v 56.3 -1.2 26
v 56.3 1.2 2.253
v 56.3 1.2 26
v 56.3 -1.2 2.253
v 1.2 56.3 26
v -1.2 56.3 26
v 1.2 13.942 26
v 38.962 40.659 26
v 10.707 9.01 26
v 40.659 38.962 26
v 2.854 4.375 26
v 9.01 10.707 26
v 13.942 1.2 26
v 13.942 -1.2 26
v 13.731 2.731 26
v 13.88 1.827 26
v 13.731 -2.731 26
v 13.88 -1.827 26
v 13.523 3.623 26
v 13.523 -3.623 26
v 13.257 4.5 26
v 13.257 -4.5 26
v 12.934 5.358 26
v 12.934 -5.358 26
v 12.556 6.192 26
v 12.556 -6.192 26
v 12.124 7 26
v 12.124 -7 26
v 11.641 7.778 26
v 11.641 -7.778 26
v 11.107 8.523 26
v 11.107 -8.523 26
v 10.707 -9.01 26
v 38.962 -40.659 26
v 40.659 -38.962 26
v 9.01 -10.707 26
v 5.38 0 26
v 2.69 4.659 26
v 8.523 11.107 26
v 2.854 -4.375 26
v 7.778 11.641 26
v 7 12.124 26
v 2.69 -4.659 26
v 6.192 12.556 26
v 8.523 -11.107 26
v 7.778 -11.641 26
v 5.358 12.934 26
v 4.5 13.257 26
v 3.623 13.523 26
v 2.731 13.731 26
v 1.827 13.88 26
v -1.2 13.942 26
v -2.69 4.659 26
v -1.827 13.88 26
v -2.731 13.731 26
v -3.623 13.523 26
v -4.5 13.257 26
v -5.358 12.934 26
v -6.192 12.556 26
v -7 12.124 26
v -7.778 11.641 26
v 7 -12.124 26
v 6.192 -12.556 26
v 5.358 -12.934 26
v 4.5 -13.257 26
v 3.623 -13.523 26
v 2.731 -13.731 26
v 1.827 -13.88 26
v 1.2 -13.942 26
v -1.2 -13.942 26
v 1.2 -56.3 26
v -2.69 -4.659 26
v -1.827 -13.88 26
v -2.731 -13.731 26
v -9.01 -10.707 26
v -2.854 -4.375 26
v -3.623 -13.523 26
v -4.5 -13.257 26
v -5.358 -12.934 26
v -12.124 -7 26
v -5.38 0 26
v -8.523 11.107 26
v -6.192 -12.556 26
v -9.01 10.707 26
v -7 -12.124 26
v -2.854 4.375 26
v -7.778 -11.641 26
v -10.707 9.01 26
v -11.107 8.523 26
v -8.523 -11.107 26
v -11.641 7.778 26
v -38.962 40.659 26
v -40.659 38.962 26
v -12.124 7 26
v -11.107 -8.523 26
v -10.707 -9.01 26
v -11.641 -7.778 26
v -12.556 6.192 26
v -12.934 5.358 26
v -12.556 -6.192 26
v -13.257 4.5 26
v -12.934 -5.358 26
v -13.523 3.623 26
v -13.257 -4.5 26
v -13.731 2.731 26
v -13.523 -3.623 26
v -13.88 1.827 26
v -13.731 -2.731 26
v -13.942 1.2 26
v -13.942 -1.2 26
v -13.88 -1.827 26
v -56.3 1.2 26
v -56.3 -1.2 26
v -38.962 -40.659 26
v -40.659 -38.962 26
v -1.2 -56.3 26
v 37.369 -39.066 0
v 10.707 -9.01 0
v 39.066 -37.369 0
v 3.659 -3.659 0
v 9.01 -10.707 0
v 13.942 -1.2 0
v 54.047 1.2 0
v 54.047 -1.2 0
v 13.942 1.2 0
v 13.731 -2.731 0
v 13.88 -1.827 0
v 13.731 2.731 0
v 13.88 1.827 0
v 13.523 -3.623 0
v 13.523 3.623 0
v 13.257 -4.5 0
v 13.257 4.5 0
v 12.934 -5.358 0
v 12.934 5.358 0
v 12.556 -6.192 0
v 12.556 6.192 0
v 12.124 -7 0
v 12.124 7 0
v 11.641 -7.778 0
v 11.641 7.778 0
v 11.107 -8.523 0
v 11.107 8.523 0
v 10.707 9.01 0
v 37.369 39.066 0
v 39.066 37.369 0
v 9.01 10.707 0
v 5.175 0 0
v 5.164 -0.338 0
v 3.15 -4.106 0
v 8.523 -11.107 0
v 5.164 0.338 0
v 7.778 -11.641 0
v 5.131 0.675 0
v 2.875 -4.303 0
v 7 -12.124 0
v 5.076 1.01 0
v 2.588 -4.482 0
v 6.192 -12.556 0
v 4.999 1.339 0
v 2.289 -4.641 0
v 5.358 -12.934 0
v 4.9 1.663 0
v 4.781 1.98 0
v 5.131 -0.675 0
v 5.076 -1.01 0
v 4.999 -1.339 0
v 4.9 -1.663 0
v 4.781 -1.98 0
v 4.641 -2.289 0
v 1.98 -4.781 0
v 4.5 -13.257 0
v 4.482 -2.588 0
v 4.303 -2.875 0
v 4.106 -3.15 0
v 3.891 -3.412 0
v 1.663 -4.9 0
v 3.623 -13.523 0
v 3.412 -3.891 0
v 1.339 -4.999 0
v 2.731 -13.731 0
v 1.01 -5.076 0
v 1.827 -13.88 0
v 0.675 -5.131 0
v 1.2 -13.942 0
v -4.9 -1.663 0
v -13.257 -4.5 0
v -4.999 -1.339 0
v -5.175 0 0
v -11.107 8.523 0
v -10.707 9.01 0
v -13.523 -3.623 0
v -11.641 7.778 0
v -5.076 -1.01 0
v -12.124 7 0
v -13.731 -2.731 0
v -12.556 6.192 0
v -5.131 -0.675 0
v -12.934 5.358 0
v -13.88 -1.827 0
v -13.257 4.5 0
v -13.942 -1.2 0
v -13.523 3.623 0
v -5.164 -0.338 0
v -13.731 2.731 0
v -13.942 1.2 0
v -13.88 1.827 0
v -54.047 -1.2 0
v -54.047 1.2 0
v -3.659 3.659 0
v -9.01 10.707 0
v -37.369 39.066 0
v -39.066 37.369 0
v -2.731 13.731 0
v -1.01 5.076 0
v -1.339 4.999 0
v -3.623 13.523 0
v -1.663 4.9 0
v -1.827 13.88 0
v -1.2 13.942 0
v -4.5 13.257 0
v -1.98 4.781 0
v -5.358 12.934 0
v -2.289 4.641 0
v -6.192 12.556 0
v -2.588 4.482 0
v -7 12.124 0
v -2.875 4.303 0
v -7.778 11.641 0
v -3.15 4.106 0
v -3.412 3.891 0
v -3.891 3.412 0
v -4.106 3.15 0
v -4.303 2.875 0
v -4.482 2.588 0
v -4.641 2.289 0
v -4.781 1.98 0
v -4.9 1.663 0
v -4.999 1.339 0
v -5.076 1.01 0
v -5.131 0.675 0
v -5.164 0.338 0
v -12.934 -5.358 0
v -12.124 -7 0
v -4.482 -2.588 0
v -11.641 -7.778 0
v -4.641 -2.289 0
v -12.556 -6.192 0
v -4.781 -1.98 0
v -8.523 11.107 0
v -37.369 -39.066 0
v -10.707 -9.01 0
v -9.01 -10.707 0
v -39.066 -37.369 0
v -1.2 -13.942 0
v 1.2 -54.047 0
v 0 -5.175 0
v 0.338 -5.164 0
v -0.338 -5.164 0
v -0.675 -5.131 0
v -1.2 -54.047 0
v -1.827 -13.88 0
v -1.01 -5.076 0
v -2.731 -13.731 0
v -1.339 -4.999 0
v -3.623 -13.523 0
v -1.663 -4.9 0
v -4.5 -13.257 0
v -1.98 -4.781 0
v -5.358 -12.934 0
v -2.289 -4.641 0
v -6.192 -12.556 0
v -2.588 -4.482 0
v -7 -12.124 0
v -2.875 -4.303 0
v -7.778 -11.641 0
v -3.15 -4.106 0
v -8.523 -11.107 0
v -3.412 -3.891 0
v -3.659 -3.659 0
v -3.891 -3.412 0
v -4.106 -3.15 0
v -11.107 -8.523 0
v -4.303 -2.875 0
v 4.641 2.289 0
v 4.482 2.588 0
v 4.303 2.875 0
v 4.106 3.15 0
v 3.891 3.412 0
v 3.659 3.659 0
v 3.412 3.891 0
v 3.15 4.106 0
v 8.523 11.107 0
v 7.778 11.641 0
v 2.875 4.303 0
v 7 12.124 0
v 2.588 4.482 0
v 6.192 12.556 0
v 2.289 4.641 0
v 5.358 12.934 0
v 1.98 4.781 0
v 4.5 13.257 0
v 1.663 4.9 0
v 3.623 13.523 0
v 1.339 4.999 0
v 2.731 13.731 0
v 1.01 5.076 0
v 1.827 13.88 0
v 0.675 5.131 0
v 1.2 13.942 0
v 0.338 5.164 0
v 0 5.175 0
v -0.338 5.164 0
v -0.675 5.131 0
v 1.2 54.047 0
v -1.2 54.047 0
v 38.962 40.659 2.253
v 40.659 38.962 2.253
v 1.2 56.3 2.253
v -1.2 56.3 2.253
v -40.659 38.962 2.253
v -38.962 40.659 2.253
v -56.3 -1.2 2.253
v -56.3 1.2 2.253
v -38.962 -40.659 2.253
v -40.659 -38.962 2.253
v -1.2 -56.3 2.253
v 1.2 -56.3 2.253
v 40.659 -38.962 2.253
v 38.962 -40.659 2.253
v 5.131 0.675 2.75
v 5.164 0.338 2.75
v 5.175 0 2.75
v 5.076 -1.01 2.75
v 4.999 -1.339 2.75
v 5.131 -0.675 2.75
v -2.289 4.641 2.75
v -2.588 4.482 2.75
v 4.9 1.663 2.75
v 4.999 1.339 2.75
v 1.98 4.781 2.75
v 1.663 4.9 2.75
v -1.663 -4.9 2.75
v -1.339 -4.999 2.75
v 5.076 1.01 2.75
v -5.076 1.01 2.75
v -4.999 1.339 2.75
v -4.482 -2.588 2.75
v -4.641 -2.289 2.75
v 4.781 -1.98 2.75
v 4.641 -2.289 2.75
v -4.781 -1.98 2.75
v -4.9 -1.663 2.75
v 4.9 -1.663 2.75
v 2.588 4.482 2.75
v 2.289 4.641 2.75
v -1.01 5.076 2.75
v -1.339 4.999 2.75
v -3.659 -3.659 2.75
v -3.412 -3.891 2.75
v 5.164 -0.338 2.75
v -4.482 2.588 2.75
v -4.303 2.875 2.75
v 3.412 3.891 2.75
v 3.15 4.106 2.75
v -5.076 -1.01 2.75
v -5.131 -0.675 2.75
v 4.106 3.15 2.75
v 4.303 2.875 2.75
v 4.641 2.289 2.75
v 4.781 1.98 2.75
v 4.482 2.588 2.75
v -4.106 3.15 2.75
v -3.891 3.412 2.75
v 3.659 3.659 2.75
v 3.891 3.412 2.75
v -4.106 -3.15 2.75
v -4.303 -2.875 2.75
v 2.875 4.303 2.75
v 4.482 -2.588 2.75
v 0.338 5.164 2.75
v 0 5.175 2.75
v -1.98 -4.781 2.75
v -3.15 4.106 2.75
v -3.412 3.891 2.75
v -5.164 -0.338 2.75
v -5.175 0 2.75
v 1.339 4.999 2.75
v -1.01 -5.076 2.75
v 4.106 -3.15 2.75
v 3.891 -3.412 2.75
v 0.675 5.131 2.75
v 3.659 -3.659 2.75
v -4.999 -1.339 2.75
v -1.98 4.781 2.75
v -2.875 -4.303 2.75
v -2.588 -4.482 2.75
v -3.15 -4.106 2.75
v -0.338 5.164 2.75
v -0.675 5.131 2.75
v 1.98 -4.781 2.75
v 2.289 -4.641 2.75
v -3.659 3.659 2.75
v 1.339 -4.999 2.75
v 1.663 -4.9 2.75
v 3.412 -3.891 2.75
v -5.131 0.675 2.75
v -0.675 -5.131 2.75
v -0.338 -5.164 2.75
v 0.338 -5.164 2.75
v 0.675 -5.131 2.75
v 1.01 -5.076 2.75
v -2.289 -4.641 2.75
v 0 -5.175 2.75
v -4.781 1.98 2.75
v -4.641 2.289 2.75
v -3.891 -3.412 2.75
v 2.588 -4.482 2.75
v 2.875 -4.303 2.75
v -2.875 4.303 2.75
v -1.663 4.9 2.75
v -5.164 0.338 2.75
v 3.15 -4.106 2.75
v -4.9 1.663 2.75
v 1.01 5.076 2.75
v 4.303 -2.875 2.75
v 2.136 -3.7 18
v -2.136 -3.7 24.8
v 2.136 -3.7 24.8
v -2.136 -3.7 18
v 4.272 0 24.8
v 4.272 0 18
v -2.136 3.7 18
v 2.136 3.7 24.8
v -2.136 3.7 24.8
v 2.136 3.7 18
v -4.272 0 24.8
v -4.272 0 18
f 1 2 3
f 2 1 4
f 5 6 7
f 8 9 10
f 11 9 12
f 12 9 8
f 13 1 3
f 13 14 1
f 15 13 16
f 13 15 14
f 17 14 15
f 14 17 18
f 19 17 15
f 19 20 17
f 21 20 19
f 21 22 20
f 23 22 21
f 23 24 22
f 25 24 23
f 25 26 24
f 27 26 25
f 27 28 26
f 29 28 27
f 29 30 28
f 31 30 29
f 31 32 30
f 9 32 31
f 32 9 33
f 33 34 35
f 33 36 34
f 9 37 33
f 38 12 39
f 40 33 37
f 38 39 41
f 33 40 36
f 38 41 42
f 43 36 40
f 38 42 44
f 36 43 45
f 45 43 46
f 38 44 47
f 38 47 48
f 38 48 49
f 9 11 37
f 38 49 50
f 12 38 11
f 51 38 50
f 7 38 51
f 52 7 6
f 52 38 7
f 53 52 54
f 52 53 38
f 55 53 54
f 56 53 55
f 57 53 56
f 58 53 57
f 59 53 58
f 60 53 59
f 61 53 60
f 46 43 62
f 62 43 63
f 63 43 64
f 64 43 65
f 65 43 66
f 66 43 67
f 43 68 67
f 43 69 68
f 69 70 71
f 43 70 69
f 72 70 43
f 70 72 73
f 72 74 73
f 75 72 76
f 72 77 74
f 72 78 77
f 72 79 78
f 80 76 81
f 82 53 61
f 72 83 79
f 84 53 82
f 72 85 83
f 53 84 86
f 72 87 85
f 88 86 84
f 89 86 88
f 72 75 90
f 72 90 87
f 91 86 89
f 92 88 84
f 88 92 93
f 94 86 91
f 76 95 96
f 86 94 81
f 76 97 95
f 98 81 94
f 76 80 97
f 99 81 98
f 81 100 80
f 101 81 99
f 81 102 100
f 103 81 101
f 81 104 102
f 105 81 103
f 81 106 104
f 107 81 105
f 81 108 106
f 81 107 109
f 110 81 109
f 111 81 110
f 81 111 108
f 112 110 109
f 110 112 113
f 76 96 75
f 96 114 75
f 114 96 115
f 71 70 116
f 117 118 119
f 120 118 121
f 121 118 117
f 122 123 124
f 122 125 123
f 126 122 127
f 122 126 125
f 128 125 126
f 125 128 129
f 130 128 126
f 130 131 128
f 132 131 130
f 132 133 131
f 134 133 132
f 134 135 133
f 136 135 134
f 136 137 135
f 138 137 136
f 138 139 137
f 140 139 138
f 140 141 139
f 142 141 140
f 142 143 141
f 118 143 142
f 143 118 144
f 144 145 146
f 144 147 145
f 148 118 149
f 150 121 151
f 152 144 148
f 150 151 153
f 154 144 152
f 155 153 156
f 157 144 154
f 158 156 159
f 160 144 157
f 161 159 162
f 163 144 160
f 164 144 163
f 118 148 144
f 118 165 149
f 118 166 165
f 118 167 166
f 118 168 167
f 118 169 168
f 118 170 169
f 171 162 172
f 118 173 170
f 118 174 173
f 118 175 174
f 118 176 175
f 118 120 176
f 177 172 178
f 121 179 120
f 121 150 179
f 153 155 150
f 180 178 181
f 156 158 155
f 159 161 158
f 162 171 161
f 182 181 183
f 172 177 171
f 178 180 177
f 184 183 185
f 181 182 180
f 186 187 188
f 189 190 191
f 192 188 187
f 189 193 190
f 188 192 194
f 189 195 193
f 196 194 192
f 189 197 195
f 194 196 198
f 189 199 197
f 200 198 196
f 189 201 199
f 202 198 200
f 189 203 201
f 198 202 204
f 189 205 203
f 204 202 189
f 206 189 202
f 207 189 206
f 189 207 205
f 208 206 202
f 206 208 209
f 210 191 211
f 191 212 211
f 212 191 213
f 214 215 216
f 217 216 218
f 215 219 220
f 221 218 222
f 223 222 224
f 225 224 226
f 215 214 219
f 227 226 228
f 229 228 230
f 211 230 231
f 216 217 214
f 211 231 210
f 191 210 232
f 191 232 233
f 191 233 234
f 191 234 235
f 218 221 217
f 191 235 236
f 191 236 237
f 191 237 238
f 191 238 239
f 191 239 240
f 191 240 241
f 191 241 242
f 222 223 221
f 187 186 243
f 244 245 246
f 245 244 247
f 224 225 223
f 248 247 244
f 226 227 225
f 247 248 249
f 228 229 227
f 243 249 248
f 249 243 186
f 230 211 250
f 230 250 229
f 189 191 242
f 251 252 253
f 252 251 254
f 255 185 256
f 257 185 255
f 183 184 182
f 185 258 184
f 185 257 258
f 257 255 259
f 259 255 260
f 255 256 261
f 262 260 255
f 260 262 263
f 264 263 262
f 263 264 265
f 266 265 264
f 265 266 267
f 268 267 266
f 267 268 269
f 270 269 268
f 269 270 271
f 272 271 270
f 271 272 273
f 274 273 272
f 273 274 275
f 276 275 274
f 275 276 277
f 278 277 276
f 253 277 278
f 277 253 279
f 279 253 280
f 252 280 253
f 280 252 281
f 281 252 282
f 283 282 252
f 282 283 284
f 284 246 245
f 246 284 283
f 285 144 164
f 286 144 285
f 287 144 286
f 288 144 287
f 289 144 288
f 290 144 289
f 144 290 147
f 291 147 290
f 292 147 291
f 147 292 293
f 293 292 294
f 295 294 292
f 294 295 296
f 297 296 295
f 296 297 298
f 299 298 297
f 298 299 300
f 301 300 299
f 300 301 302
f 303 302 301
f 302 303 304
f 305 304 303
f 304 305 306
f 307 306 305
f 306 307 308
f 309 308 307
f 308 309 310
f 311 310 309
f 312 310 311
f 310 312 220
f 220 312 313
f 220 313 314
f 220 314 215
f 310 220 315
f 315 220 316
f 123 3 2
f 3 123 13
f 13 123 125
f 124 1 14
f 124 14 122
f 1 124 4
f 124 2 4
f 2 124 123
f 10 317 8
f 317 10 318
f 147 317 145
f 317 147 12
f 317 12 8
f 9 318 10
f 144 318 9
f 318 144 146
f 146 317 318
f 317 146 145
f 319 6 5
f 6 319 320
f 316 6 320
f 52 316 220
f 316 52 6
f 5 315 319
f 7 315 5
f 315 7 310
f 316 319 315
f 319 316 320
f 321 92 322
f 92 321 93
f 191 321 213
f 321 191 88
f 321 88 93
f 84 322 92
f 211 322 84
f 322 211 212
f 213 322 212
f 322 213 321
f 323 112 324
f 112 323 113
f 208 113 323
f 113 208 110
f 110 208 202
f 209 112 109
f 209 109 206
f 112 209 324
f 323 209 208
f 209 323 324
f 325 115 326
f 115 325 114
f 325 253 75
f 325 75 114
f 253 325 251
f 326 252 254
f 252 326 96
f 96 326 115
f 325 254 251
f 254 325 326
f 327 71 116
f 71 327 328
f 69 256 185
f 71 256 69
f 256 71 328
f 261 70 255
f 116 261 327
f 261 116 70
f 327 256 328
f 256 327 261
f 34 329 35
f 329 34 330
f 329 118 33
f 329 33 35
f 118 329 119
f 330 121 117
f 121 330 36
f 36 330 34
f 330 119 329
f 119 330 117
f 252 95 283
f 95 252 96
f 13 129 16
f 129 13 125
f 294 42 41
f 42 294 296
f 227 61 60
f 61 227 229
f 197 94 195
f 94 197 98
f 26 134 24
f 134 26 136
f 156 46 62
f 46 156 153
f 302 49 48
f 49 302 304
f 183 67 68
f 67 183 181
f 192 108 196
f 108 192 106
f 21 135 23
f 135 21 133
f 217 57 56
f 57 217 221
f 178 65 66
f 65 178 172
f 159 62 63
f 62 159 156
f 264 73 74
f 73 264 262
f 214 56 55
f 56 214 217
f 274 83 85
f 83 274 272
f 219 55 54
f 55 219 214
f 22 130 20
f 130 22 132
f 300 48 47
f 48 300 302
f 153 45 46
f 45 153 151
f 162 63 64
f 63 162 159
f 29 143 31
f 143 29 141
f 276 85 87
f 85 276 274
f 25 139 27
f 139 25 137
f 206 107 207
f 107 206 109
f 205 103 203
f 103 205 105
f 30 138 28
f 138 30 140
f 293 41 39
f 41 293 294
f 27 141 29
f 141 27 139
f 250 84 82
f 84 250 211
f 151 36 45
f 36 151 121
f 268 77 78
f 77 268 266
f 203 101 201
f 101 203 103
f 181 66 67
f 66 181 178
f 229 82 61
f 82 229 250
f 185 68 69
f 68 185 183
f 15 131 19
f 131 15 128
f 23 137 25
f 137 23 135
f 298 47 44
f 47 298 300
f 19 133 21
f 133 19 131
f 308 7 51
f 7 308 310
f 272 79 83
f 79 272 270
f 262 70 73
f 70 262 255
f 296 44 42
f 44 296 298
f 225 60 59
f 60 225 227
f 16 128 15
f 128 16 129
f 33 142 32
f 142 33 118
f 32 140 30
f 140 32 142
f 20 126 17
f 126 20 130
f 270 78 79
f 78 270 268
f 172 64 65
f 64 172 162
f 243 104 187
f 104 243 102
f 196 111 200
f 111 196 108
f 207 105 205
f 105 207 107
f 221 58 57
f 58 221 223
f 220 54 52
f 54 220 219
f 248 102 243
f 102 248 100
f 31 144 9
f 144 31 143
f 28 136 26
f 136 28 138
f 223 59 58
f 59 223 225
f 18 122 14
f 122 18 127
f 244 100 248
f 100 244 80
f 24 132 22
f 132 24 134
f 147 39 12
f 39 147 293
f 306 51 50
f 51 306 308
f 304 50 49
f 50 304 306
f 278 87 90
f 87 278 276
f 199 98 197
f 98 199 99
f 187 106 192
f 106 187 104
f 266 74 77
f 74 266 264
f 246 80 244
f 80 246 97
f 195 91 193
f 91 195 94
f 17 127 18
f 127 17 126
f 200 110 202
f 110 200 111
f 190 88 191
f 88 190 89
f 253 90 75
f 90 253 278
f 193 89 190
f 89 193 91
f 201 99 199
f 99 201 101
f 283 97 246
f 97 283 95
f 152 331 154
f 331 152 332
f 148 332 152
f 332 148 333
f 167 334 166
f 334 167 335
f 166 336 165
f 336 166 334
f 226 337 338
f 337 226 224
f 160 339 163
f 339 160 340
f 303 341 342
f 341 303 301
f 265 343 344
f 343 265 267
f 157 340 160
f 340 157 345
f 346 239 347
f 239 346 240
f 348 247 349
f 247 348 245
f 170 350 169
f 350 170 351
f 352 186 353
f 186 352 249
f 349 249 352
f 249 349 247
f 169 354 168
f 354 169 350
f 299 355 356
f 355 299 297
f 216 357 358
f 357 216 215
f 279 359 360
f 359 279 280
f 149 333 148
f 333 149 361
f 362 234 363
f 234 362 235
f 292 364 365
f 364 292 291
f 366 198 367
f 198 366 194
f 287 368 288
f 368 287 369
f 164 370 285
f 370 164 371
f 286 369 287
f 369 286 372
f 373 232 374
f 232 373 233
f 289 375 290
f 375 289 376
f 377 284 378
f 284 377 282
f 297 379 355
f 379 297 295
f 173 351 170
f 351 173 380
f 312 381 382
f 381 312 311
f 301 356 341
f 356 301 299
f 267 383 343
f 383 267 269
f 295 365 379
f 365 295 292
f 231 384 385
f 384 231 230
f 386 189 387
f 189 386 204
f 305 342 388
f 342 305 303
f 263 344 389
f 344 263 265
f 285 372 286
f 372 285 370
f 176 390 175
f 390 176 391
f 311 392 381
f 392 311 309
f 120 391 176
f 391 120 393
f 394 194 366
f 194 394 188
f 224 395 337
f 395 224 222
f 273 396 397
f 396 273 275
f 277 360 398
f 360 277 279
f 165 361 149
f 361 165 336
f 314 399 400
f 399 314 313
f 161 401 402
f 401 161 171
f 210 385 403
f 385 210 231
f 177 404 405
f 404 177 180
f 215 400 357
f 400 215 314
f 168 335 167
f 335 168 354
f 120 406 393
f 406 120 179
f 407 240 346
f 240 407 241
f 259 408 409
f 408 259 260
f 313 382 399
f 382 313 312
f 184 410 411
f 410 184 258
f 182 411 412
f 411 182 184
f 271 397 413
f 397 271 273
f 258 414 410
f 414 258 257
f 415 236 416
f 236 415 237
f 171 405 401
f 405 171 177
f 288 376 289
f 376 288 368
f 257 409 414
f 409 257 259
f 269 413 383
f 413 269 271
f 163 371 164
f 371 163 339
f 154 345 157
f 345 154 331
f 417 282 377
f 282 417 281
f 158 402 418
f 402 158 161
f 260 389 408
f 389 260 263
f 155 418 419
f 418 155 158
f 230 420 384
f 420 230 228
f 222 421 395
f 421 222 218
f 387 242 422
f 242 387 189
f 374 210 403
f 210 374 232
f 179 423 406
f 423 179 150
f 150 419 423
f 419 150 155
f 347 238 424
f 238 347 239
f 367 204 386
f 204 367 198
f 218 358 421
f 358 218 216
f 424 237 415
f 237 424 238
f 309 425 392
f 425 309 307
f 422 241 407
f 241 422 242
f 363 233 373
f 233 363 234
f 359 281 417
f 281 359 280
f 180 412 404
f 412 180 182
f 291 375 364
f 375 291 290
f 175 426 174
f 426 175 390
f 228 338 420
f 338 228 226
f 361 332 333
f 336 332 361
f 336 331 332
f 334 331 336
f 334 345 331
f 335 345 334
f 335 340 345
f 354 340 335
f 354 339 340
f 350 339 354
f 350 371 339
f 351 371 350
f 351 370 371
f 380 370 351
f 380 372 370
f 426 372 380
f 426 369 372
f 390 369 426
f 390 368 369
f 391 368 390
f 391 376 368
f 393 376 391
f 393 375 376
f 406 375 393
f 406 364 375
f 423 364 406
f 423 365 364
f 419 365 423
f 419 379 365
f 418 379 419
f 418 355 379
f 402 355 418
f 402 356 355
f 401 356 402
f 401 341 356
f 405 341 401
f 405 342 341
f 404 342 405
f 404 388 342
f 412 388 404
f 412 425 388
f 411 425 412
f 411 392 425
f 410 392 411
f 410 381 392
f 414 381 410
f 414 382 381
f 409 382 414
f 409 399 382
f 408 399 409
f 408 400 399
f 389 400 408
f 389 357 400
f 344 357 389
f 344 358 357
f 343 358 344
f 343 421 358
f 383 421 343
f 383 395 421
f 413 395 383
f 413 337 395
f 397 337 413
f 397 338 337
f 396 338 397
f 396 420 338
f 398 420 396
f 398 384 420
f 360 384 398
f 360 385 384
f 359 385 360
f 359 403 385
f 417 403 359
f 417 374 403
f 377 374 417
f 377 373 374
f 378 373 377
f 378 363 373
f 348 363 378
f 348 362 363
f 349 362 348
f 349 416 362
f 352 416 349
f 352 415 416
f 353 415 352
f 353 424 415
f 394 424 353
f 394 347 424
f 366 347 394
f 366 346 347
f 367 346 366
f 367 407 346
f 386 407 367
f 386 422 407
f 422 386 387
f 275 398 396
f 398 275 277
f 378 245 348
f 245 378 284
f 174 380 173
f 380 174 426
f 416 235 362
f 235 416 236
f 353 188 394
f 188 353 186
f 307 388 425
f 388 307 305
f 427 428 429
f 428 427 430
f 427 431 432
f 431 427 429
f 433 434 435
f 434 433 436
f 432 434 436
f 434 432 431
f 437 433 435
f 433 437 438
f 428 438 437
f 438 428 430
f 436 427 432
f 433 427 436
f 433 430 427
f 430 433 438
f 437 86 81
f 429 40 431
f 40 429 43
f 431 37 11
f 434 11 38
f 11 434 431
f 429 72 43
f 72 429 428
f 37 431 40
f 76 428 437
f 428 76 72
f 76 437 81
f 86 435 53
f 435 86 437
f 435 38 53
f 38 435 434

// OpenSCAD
// file: lib_v3.scad
// ============================================================================
// Shared geometry helpers for the v3 print set.   include <lib_v3.scad>;
// ============================================================================

// Wedge prism, centred on +X, spanning +/- ang/2, rising from z = 0.
module sector_prism(r, ang, h, seg = 64) {
    steps = max(4, ceil(ang / 2.5));   // ~2.5 deg chords, independent of ang
    linear_extrude(height = h)
        polygon(concat(
            [[0, 0]],
            [for (i = [0 : steps])
                let (a = -ang / 2 + ang * i / steps) [r * cos(a), r * sin(a)]]
        ));
}

// Annular sector prism, centred on +X, rising from z = 0.
module ring_sector(r_in, r_out, ang, h, seg = 64) {
    difference() {
        sector_prism(r_out, ang, h, seg);
        translate([0, 0, -0.05]) cylinder(h = h + 0.1, r = r_in, $fn = seg);
    }
}

module tube(od, id, h) {
    difference() {
        cylinder(h = h, d = od);
        translate([0, 0, -0.05]) cylinder(h = h + 0.1, d = id);
    }
}

// Inward ledge with a 45 deg self-supporting underside. Top face at z_top.
module chamfered_ledge(r_wall, w, z_top) {
    rotate_extrude(convexity = 4)
        polygon([[r_wall - w, z_top],
                 [r_wall,     z_top],
                 [r_wall,     z_top - w]]);
}

// Thin slab used as a hull station for the chute trough.
module station_slab(y, z, w, t = 0.6) {
    translate([-w / 2, y - t / 2, z]) cube([w, t, 0.6]);
}
// file: parameters_v3.scad
// ============================================================================
// Automated Pill Dispenser — v3 "integral deck + open carousel"
// Shared parametric dimensions.   include <parameters_v3.scad>;
//
// z = 0 is the underside of the base body; the base cover hangs below it, so
// the table plane is z = base_z. +Y is the front (chute, tray, camera).
//
// Mechanism: the deck holds the pills in. It has ONE wedge opening. The unit
// parks with the JUST-EMPTIED compartment sitting over that opening, so
// nothing can leak; a 45 deg step sweeps the next compartment across the
// opening and gravity empties it. One servo, no gate, no carousel floor.
//
// Sizing rule that makes the park state leak-proof: the opening's angular
// width must fit inside one compartment's interior with margin to spare, at
// the opening's INNER radius (where a divider subtends the most angle):
//
//     open_deg  <=  360/car_n - 2*asin(div_t / (2*open_r_in)) - 2*park_margin
//     24        <=  45        - 8.6                           - 2*6.2
//
// Widening the opening or moving it inward eats the parking margin.
// ============================================================================

// ---------------------------------------------------------------- print / fit
layer_h        = 0.2;
nozzle_d       = 0.4;
wall           = 3.0;
fit_slip       = 0.35;
fit_press      = 0.10;
m3_pilot_d     = 2.55;
m3_free_d      = 3.35;
m2_pilot_d     = 1.65;
m2_free_d      = 2.30;

// ---------------------------------------------------------------- drum
h_od           = 120.0;
h_id           = h_od - 2 * wall;          // 114
h_ri           = h_id / 2;                 // 57
rim_z          = 94.0;                     // top of the deck body wall

// ---------------------------------------------------------------- deck (A3)
deck_z         = 52.0;                     // deck underside / body split plane
deck_t         = 5.0;                      // structural: the deck IS the drum
deck_top       = deck_z + deck_t;          // 57
deck_fillet    = 1.2;                      // fillet where the wall meets the deck

// The one opening.
open_deg       = 24.0;
open_r_in      = 16.0;
open_r_out     = h_ri;                     // breaches the bore: nothing rides past
open_ctr       = 90.0;                     // front (+Y)
open_relief    = 1.2;                      // lead-in relief on the deck top face

// Centre pilot: the carousel's only bearing. Post on the deck, journal in the
// hub, so the drive shaft never carries weight.
pilot_d        = 10.0;
pilot_engage   = 2.75;

// Body joint: three ears outside the drum. Concentricity between bodies is not
// critical — the running surface and the bore are both on the deck body.
ear_angles     = [30, 150, 270];
ear_w          = 18.0;
ear_out        = 7.0;
ear_t          = 8.0;

// ---------------------------------------------------------------- carousel (C3)
car_n          = 8;
car_pitch      = 360 / car_n;              // 45
car_od         = h_id - 1.4;               // 112.6 -> 0.7 mm sweep gap per side
car_r          = car_od / 2;
div_t          = 2.4;
div_h          = 26.0;
div_chamfer    = 1.6;                      // clears the deck/wall fillet
hub_od         = 28.0;
car_gap        = 0.35;                     // divider to deck running gap
car_z          = deck_top + car_gap;       // 57.35
car_top        = car_z + div_h;            // 83.35
pilot_post_h   = car_gap + pilot_engage;   // 3.1
pilot_bore_d   = pilot_d + fit_slip;       // 10.35

// Derived parking margin, echoed by the parts so a bad edit is loud.
park_margin    = (car_pitch - 2 * asin(div_t / (2 * open_r_in)) - open_deg) / 2;

// ---------------------------------------------------------------- drive train
// Hex socket, deliberately loose: it passes torque but cannot side-load the
// carousel, so the pilot post alone defines the axis.
hex_af         = 7.0;
hex_slip       = 0.40;
hex_depth      = 8.0;

shaft_body_d   = 10.0;
shaft_head_d   = 26.0;
shaft_head_t   = 6.0;

// MG90S
servo_l        = 22.8;
servo_w        = 12.2;
servo_case_h   = 22.5;
servo_tab_span = 32.2;
servo_tab_t    = 2.5;
servo_shaft_in = 5.9;
servo_nose_h   = 6.0;
servo_shaft_h  = 4.7;

horn_disc_d    = 20.4;
horn_disc_h    = 4.2;
horn_hole_r    = 7.5;
horn_screw_n   = 4;
horn_boss_d    = 8.5;

// ---------------------------------------------------------------- bracket (E3)
brk_ctr        = 270.0;                    // rear wall, opposite the chute
brk_pad_w      = 26.0;
brk_pad_h      = 40.0;
brk_pad_t      = 6.0;
brk_pad_z0     = 72.0;
brk_screw_z    = [78.0, 90.0];             // through the wall, from outside
brk_arm_w      = 22.0;
brk_arm_t      = 8.0;
brk_arm_top    = 112.0;                    // = the servo flange plane
// The servo plate has to be thinner than the servo's nose (6 mm from flange to
// case top) or the drive shaft's head fouls it. The beam keeps its full depth.
brk_head_t     = 4.5;
brk_rib_h      = 12.0;
brk_web_h      = 26.0;                     // gusset depth at the wall

// ---------------------------------------------------------------- chute (B3)
chute_wall     = 2.4;
// The notch is only as wide as the pill passage, so the chute's own side walls
// overlap the remaining drum wall and fuse into it. Cut it any wider and the
// chute floats free of the housing.
chute_win_w    = 32.0;
chute_win_z0   = 8.0;                            // below the ramp's underside
chute_win_z1   = deck_z;                         // open right up to the deck

// [ y, floor top z, inside width, side-wall top z, floor thickness ]
// The floor thickens toward the exit so its UNDERSIDE runs at 40-42 deg rather
// than following the 38-40 deg top surface: it keeps the overhang printable and
// puts the material where the chute cantilevers out of the wall.
chute_stations = [
    [17.0, 52.0, 14.0, 51.9, 2.4],
    [45.0, 30.0, 32.0, 51.8, 6.0],
    [57.0, 19.0, 32.0, 36.0, 6.0],
    [70.0,  8.0, 32.0, 24.0, 6.5],
];

// ---------------------------------------------------------------- tray (F3)
tray_y0        = 68.0;
tray_l         = 62.0;
tray_w         = 78.0;
tray_floor     = 2.0;
tray_h         = 14.0;
tray_mouth_h   = 4.0;                      // cut-down wall; the chute lip overhangs it

// ---------------------------------------------------------------- base (G3)
base_t         = 3.0;
base_z         = -base_t;                  // table plane
post_d         = 9.0;
post_r         = h_ri - post_d / 2 + 0.8;
post_angles    = [70, 190, 310];
cable_w        = 12.0;
cable_h        = 6.0;
// main file
// ============================================================================
// v3 PART C3 — carousel: hub + 8 dividers, exactly as drawn
//
// No floor and no outer wall. The deck below holds the pills in, the drum bore
// closes the compartments on the outside. That is only safe because the deck
// opening is narrower than a compartment: see the sizing rule in
// parameters_v3.scad.
//
// Print as modelled — the divider ends and the hub sit flat on the bed, so the
// whole part is one continuous upward extrusion with no overhangs.
// ============================================================================

include <parameters_v3.scad>;
include <lib_v3.scad>;

$fn = 96;

div_r_in = hub_od / 2 - 0.5;

module c3_divider() {
    difference() {
        translate([div_r_in, -div_t / 2, 0]) cube([car_r - div_r_in, div_t, div_h]);
        // Chamfer the outer bottom corner to clear the deck/wall fillet.
        translate([car_r + 0.01, 0, 0])
            rotate([0, 45, 0])
                translate([-div_chamfer, -div_t, -div_chamfer])
                    cube([div_chamfer * 2, div_t * 2, div_chamfer * 2]);
    }
}

module carousel_v3() {
    translate([0, 0, car_z])
    difference() {
        union() {
            cylinder(h = div_h, d = hub_od);
            for (i = [0 : car_n - 1]) rotate([0, 0, i * car_pitch]) c3_divider();
        }

        // Journal onto the deck's pilot post.
        translate([0, 0, -0.1]) cylinder(h = pilot_engage + 0.1, d = pilot_bore_d);

        // Loose hex socket for the drive shaft.
        translate([0, 0, div_h - hex_depth])
            cylinder(h = hex_depth + 0.1, d = (hex_af + hex_slip) / cos(30), $fn = 6);

        // Lead-in chamfer at the socket mouth.
        translate([0, 0, div_h - 1.2])
            cylinder(h = 1.3, d1 = (hex_af + hex_slip) / cos(30),
                     d2 = (hex_af + hex_slip) / cos(30) + 2.4, $fn = 6);
    }
}

translate([0, 0, -car_z]) carousel_v3();

echo(str("C3 carousel: ", car_n, " compartments, OD ", car_od,
         ", divider ", div_t, " x ", div_h));
echo(str("C3 sweep gap ", (h_id - car_od) / 2, " per side, running gap ", car_gap));
